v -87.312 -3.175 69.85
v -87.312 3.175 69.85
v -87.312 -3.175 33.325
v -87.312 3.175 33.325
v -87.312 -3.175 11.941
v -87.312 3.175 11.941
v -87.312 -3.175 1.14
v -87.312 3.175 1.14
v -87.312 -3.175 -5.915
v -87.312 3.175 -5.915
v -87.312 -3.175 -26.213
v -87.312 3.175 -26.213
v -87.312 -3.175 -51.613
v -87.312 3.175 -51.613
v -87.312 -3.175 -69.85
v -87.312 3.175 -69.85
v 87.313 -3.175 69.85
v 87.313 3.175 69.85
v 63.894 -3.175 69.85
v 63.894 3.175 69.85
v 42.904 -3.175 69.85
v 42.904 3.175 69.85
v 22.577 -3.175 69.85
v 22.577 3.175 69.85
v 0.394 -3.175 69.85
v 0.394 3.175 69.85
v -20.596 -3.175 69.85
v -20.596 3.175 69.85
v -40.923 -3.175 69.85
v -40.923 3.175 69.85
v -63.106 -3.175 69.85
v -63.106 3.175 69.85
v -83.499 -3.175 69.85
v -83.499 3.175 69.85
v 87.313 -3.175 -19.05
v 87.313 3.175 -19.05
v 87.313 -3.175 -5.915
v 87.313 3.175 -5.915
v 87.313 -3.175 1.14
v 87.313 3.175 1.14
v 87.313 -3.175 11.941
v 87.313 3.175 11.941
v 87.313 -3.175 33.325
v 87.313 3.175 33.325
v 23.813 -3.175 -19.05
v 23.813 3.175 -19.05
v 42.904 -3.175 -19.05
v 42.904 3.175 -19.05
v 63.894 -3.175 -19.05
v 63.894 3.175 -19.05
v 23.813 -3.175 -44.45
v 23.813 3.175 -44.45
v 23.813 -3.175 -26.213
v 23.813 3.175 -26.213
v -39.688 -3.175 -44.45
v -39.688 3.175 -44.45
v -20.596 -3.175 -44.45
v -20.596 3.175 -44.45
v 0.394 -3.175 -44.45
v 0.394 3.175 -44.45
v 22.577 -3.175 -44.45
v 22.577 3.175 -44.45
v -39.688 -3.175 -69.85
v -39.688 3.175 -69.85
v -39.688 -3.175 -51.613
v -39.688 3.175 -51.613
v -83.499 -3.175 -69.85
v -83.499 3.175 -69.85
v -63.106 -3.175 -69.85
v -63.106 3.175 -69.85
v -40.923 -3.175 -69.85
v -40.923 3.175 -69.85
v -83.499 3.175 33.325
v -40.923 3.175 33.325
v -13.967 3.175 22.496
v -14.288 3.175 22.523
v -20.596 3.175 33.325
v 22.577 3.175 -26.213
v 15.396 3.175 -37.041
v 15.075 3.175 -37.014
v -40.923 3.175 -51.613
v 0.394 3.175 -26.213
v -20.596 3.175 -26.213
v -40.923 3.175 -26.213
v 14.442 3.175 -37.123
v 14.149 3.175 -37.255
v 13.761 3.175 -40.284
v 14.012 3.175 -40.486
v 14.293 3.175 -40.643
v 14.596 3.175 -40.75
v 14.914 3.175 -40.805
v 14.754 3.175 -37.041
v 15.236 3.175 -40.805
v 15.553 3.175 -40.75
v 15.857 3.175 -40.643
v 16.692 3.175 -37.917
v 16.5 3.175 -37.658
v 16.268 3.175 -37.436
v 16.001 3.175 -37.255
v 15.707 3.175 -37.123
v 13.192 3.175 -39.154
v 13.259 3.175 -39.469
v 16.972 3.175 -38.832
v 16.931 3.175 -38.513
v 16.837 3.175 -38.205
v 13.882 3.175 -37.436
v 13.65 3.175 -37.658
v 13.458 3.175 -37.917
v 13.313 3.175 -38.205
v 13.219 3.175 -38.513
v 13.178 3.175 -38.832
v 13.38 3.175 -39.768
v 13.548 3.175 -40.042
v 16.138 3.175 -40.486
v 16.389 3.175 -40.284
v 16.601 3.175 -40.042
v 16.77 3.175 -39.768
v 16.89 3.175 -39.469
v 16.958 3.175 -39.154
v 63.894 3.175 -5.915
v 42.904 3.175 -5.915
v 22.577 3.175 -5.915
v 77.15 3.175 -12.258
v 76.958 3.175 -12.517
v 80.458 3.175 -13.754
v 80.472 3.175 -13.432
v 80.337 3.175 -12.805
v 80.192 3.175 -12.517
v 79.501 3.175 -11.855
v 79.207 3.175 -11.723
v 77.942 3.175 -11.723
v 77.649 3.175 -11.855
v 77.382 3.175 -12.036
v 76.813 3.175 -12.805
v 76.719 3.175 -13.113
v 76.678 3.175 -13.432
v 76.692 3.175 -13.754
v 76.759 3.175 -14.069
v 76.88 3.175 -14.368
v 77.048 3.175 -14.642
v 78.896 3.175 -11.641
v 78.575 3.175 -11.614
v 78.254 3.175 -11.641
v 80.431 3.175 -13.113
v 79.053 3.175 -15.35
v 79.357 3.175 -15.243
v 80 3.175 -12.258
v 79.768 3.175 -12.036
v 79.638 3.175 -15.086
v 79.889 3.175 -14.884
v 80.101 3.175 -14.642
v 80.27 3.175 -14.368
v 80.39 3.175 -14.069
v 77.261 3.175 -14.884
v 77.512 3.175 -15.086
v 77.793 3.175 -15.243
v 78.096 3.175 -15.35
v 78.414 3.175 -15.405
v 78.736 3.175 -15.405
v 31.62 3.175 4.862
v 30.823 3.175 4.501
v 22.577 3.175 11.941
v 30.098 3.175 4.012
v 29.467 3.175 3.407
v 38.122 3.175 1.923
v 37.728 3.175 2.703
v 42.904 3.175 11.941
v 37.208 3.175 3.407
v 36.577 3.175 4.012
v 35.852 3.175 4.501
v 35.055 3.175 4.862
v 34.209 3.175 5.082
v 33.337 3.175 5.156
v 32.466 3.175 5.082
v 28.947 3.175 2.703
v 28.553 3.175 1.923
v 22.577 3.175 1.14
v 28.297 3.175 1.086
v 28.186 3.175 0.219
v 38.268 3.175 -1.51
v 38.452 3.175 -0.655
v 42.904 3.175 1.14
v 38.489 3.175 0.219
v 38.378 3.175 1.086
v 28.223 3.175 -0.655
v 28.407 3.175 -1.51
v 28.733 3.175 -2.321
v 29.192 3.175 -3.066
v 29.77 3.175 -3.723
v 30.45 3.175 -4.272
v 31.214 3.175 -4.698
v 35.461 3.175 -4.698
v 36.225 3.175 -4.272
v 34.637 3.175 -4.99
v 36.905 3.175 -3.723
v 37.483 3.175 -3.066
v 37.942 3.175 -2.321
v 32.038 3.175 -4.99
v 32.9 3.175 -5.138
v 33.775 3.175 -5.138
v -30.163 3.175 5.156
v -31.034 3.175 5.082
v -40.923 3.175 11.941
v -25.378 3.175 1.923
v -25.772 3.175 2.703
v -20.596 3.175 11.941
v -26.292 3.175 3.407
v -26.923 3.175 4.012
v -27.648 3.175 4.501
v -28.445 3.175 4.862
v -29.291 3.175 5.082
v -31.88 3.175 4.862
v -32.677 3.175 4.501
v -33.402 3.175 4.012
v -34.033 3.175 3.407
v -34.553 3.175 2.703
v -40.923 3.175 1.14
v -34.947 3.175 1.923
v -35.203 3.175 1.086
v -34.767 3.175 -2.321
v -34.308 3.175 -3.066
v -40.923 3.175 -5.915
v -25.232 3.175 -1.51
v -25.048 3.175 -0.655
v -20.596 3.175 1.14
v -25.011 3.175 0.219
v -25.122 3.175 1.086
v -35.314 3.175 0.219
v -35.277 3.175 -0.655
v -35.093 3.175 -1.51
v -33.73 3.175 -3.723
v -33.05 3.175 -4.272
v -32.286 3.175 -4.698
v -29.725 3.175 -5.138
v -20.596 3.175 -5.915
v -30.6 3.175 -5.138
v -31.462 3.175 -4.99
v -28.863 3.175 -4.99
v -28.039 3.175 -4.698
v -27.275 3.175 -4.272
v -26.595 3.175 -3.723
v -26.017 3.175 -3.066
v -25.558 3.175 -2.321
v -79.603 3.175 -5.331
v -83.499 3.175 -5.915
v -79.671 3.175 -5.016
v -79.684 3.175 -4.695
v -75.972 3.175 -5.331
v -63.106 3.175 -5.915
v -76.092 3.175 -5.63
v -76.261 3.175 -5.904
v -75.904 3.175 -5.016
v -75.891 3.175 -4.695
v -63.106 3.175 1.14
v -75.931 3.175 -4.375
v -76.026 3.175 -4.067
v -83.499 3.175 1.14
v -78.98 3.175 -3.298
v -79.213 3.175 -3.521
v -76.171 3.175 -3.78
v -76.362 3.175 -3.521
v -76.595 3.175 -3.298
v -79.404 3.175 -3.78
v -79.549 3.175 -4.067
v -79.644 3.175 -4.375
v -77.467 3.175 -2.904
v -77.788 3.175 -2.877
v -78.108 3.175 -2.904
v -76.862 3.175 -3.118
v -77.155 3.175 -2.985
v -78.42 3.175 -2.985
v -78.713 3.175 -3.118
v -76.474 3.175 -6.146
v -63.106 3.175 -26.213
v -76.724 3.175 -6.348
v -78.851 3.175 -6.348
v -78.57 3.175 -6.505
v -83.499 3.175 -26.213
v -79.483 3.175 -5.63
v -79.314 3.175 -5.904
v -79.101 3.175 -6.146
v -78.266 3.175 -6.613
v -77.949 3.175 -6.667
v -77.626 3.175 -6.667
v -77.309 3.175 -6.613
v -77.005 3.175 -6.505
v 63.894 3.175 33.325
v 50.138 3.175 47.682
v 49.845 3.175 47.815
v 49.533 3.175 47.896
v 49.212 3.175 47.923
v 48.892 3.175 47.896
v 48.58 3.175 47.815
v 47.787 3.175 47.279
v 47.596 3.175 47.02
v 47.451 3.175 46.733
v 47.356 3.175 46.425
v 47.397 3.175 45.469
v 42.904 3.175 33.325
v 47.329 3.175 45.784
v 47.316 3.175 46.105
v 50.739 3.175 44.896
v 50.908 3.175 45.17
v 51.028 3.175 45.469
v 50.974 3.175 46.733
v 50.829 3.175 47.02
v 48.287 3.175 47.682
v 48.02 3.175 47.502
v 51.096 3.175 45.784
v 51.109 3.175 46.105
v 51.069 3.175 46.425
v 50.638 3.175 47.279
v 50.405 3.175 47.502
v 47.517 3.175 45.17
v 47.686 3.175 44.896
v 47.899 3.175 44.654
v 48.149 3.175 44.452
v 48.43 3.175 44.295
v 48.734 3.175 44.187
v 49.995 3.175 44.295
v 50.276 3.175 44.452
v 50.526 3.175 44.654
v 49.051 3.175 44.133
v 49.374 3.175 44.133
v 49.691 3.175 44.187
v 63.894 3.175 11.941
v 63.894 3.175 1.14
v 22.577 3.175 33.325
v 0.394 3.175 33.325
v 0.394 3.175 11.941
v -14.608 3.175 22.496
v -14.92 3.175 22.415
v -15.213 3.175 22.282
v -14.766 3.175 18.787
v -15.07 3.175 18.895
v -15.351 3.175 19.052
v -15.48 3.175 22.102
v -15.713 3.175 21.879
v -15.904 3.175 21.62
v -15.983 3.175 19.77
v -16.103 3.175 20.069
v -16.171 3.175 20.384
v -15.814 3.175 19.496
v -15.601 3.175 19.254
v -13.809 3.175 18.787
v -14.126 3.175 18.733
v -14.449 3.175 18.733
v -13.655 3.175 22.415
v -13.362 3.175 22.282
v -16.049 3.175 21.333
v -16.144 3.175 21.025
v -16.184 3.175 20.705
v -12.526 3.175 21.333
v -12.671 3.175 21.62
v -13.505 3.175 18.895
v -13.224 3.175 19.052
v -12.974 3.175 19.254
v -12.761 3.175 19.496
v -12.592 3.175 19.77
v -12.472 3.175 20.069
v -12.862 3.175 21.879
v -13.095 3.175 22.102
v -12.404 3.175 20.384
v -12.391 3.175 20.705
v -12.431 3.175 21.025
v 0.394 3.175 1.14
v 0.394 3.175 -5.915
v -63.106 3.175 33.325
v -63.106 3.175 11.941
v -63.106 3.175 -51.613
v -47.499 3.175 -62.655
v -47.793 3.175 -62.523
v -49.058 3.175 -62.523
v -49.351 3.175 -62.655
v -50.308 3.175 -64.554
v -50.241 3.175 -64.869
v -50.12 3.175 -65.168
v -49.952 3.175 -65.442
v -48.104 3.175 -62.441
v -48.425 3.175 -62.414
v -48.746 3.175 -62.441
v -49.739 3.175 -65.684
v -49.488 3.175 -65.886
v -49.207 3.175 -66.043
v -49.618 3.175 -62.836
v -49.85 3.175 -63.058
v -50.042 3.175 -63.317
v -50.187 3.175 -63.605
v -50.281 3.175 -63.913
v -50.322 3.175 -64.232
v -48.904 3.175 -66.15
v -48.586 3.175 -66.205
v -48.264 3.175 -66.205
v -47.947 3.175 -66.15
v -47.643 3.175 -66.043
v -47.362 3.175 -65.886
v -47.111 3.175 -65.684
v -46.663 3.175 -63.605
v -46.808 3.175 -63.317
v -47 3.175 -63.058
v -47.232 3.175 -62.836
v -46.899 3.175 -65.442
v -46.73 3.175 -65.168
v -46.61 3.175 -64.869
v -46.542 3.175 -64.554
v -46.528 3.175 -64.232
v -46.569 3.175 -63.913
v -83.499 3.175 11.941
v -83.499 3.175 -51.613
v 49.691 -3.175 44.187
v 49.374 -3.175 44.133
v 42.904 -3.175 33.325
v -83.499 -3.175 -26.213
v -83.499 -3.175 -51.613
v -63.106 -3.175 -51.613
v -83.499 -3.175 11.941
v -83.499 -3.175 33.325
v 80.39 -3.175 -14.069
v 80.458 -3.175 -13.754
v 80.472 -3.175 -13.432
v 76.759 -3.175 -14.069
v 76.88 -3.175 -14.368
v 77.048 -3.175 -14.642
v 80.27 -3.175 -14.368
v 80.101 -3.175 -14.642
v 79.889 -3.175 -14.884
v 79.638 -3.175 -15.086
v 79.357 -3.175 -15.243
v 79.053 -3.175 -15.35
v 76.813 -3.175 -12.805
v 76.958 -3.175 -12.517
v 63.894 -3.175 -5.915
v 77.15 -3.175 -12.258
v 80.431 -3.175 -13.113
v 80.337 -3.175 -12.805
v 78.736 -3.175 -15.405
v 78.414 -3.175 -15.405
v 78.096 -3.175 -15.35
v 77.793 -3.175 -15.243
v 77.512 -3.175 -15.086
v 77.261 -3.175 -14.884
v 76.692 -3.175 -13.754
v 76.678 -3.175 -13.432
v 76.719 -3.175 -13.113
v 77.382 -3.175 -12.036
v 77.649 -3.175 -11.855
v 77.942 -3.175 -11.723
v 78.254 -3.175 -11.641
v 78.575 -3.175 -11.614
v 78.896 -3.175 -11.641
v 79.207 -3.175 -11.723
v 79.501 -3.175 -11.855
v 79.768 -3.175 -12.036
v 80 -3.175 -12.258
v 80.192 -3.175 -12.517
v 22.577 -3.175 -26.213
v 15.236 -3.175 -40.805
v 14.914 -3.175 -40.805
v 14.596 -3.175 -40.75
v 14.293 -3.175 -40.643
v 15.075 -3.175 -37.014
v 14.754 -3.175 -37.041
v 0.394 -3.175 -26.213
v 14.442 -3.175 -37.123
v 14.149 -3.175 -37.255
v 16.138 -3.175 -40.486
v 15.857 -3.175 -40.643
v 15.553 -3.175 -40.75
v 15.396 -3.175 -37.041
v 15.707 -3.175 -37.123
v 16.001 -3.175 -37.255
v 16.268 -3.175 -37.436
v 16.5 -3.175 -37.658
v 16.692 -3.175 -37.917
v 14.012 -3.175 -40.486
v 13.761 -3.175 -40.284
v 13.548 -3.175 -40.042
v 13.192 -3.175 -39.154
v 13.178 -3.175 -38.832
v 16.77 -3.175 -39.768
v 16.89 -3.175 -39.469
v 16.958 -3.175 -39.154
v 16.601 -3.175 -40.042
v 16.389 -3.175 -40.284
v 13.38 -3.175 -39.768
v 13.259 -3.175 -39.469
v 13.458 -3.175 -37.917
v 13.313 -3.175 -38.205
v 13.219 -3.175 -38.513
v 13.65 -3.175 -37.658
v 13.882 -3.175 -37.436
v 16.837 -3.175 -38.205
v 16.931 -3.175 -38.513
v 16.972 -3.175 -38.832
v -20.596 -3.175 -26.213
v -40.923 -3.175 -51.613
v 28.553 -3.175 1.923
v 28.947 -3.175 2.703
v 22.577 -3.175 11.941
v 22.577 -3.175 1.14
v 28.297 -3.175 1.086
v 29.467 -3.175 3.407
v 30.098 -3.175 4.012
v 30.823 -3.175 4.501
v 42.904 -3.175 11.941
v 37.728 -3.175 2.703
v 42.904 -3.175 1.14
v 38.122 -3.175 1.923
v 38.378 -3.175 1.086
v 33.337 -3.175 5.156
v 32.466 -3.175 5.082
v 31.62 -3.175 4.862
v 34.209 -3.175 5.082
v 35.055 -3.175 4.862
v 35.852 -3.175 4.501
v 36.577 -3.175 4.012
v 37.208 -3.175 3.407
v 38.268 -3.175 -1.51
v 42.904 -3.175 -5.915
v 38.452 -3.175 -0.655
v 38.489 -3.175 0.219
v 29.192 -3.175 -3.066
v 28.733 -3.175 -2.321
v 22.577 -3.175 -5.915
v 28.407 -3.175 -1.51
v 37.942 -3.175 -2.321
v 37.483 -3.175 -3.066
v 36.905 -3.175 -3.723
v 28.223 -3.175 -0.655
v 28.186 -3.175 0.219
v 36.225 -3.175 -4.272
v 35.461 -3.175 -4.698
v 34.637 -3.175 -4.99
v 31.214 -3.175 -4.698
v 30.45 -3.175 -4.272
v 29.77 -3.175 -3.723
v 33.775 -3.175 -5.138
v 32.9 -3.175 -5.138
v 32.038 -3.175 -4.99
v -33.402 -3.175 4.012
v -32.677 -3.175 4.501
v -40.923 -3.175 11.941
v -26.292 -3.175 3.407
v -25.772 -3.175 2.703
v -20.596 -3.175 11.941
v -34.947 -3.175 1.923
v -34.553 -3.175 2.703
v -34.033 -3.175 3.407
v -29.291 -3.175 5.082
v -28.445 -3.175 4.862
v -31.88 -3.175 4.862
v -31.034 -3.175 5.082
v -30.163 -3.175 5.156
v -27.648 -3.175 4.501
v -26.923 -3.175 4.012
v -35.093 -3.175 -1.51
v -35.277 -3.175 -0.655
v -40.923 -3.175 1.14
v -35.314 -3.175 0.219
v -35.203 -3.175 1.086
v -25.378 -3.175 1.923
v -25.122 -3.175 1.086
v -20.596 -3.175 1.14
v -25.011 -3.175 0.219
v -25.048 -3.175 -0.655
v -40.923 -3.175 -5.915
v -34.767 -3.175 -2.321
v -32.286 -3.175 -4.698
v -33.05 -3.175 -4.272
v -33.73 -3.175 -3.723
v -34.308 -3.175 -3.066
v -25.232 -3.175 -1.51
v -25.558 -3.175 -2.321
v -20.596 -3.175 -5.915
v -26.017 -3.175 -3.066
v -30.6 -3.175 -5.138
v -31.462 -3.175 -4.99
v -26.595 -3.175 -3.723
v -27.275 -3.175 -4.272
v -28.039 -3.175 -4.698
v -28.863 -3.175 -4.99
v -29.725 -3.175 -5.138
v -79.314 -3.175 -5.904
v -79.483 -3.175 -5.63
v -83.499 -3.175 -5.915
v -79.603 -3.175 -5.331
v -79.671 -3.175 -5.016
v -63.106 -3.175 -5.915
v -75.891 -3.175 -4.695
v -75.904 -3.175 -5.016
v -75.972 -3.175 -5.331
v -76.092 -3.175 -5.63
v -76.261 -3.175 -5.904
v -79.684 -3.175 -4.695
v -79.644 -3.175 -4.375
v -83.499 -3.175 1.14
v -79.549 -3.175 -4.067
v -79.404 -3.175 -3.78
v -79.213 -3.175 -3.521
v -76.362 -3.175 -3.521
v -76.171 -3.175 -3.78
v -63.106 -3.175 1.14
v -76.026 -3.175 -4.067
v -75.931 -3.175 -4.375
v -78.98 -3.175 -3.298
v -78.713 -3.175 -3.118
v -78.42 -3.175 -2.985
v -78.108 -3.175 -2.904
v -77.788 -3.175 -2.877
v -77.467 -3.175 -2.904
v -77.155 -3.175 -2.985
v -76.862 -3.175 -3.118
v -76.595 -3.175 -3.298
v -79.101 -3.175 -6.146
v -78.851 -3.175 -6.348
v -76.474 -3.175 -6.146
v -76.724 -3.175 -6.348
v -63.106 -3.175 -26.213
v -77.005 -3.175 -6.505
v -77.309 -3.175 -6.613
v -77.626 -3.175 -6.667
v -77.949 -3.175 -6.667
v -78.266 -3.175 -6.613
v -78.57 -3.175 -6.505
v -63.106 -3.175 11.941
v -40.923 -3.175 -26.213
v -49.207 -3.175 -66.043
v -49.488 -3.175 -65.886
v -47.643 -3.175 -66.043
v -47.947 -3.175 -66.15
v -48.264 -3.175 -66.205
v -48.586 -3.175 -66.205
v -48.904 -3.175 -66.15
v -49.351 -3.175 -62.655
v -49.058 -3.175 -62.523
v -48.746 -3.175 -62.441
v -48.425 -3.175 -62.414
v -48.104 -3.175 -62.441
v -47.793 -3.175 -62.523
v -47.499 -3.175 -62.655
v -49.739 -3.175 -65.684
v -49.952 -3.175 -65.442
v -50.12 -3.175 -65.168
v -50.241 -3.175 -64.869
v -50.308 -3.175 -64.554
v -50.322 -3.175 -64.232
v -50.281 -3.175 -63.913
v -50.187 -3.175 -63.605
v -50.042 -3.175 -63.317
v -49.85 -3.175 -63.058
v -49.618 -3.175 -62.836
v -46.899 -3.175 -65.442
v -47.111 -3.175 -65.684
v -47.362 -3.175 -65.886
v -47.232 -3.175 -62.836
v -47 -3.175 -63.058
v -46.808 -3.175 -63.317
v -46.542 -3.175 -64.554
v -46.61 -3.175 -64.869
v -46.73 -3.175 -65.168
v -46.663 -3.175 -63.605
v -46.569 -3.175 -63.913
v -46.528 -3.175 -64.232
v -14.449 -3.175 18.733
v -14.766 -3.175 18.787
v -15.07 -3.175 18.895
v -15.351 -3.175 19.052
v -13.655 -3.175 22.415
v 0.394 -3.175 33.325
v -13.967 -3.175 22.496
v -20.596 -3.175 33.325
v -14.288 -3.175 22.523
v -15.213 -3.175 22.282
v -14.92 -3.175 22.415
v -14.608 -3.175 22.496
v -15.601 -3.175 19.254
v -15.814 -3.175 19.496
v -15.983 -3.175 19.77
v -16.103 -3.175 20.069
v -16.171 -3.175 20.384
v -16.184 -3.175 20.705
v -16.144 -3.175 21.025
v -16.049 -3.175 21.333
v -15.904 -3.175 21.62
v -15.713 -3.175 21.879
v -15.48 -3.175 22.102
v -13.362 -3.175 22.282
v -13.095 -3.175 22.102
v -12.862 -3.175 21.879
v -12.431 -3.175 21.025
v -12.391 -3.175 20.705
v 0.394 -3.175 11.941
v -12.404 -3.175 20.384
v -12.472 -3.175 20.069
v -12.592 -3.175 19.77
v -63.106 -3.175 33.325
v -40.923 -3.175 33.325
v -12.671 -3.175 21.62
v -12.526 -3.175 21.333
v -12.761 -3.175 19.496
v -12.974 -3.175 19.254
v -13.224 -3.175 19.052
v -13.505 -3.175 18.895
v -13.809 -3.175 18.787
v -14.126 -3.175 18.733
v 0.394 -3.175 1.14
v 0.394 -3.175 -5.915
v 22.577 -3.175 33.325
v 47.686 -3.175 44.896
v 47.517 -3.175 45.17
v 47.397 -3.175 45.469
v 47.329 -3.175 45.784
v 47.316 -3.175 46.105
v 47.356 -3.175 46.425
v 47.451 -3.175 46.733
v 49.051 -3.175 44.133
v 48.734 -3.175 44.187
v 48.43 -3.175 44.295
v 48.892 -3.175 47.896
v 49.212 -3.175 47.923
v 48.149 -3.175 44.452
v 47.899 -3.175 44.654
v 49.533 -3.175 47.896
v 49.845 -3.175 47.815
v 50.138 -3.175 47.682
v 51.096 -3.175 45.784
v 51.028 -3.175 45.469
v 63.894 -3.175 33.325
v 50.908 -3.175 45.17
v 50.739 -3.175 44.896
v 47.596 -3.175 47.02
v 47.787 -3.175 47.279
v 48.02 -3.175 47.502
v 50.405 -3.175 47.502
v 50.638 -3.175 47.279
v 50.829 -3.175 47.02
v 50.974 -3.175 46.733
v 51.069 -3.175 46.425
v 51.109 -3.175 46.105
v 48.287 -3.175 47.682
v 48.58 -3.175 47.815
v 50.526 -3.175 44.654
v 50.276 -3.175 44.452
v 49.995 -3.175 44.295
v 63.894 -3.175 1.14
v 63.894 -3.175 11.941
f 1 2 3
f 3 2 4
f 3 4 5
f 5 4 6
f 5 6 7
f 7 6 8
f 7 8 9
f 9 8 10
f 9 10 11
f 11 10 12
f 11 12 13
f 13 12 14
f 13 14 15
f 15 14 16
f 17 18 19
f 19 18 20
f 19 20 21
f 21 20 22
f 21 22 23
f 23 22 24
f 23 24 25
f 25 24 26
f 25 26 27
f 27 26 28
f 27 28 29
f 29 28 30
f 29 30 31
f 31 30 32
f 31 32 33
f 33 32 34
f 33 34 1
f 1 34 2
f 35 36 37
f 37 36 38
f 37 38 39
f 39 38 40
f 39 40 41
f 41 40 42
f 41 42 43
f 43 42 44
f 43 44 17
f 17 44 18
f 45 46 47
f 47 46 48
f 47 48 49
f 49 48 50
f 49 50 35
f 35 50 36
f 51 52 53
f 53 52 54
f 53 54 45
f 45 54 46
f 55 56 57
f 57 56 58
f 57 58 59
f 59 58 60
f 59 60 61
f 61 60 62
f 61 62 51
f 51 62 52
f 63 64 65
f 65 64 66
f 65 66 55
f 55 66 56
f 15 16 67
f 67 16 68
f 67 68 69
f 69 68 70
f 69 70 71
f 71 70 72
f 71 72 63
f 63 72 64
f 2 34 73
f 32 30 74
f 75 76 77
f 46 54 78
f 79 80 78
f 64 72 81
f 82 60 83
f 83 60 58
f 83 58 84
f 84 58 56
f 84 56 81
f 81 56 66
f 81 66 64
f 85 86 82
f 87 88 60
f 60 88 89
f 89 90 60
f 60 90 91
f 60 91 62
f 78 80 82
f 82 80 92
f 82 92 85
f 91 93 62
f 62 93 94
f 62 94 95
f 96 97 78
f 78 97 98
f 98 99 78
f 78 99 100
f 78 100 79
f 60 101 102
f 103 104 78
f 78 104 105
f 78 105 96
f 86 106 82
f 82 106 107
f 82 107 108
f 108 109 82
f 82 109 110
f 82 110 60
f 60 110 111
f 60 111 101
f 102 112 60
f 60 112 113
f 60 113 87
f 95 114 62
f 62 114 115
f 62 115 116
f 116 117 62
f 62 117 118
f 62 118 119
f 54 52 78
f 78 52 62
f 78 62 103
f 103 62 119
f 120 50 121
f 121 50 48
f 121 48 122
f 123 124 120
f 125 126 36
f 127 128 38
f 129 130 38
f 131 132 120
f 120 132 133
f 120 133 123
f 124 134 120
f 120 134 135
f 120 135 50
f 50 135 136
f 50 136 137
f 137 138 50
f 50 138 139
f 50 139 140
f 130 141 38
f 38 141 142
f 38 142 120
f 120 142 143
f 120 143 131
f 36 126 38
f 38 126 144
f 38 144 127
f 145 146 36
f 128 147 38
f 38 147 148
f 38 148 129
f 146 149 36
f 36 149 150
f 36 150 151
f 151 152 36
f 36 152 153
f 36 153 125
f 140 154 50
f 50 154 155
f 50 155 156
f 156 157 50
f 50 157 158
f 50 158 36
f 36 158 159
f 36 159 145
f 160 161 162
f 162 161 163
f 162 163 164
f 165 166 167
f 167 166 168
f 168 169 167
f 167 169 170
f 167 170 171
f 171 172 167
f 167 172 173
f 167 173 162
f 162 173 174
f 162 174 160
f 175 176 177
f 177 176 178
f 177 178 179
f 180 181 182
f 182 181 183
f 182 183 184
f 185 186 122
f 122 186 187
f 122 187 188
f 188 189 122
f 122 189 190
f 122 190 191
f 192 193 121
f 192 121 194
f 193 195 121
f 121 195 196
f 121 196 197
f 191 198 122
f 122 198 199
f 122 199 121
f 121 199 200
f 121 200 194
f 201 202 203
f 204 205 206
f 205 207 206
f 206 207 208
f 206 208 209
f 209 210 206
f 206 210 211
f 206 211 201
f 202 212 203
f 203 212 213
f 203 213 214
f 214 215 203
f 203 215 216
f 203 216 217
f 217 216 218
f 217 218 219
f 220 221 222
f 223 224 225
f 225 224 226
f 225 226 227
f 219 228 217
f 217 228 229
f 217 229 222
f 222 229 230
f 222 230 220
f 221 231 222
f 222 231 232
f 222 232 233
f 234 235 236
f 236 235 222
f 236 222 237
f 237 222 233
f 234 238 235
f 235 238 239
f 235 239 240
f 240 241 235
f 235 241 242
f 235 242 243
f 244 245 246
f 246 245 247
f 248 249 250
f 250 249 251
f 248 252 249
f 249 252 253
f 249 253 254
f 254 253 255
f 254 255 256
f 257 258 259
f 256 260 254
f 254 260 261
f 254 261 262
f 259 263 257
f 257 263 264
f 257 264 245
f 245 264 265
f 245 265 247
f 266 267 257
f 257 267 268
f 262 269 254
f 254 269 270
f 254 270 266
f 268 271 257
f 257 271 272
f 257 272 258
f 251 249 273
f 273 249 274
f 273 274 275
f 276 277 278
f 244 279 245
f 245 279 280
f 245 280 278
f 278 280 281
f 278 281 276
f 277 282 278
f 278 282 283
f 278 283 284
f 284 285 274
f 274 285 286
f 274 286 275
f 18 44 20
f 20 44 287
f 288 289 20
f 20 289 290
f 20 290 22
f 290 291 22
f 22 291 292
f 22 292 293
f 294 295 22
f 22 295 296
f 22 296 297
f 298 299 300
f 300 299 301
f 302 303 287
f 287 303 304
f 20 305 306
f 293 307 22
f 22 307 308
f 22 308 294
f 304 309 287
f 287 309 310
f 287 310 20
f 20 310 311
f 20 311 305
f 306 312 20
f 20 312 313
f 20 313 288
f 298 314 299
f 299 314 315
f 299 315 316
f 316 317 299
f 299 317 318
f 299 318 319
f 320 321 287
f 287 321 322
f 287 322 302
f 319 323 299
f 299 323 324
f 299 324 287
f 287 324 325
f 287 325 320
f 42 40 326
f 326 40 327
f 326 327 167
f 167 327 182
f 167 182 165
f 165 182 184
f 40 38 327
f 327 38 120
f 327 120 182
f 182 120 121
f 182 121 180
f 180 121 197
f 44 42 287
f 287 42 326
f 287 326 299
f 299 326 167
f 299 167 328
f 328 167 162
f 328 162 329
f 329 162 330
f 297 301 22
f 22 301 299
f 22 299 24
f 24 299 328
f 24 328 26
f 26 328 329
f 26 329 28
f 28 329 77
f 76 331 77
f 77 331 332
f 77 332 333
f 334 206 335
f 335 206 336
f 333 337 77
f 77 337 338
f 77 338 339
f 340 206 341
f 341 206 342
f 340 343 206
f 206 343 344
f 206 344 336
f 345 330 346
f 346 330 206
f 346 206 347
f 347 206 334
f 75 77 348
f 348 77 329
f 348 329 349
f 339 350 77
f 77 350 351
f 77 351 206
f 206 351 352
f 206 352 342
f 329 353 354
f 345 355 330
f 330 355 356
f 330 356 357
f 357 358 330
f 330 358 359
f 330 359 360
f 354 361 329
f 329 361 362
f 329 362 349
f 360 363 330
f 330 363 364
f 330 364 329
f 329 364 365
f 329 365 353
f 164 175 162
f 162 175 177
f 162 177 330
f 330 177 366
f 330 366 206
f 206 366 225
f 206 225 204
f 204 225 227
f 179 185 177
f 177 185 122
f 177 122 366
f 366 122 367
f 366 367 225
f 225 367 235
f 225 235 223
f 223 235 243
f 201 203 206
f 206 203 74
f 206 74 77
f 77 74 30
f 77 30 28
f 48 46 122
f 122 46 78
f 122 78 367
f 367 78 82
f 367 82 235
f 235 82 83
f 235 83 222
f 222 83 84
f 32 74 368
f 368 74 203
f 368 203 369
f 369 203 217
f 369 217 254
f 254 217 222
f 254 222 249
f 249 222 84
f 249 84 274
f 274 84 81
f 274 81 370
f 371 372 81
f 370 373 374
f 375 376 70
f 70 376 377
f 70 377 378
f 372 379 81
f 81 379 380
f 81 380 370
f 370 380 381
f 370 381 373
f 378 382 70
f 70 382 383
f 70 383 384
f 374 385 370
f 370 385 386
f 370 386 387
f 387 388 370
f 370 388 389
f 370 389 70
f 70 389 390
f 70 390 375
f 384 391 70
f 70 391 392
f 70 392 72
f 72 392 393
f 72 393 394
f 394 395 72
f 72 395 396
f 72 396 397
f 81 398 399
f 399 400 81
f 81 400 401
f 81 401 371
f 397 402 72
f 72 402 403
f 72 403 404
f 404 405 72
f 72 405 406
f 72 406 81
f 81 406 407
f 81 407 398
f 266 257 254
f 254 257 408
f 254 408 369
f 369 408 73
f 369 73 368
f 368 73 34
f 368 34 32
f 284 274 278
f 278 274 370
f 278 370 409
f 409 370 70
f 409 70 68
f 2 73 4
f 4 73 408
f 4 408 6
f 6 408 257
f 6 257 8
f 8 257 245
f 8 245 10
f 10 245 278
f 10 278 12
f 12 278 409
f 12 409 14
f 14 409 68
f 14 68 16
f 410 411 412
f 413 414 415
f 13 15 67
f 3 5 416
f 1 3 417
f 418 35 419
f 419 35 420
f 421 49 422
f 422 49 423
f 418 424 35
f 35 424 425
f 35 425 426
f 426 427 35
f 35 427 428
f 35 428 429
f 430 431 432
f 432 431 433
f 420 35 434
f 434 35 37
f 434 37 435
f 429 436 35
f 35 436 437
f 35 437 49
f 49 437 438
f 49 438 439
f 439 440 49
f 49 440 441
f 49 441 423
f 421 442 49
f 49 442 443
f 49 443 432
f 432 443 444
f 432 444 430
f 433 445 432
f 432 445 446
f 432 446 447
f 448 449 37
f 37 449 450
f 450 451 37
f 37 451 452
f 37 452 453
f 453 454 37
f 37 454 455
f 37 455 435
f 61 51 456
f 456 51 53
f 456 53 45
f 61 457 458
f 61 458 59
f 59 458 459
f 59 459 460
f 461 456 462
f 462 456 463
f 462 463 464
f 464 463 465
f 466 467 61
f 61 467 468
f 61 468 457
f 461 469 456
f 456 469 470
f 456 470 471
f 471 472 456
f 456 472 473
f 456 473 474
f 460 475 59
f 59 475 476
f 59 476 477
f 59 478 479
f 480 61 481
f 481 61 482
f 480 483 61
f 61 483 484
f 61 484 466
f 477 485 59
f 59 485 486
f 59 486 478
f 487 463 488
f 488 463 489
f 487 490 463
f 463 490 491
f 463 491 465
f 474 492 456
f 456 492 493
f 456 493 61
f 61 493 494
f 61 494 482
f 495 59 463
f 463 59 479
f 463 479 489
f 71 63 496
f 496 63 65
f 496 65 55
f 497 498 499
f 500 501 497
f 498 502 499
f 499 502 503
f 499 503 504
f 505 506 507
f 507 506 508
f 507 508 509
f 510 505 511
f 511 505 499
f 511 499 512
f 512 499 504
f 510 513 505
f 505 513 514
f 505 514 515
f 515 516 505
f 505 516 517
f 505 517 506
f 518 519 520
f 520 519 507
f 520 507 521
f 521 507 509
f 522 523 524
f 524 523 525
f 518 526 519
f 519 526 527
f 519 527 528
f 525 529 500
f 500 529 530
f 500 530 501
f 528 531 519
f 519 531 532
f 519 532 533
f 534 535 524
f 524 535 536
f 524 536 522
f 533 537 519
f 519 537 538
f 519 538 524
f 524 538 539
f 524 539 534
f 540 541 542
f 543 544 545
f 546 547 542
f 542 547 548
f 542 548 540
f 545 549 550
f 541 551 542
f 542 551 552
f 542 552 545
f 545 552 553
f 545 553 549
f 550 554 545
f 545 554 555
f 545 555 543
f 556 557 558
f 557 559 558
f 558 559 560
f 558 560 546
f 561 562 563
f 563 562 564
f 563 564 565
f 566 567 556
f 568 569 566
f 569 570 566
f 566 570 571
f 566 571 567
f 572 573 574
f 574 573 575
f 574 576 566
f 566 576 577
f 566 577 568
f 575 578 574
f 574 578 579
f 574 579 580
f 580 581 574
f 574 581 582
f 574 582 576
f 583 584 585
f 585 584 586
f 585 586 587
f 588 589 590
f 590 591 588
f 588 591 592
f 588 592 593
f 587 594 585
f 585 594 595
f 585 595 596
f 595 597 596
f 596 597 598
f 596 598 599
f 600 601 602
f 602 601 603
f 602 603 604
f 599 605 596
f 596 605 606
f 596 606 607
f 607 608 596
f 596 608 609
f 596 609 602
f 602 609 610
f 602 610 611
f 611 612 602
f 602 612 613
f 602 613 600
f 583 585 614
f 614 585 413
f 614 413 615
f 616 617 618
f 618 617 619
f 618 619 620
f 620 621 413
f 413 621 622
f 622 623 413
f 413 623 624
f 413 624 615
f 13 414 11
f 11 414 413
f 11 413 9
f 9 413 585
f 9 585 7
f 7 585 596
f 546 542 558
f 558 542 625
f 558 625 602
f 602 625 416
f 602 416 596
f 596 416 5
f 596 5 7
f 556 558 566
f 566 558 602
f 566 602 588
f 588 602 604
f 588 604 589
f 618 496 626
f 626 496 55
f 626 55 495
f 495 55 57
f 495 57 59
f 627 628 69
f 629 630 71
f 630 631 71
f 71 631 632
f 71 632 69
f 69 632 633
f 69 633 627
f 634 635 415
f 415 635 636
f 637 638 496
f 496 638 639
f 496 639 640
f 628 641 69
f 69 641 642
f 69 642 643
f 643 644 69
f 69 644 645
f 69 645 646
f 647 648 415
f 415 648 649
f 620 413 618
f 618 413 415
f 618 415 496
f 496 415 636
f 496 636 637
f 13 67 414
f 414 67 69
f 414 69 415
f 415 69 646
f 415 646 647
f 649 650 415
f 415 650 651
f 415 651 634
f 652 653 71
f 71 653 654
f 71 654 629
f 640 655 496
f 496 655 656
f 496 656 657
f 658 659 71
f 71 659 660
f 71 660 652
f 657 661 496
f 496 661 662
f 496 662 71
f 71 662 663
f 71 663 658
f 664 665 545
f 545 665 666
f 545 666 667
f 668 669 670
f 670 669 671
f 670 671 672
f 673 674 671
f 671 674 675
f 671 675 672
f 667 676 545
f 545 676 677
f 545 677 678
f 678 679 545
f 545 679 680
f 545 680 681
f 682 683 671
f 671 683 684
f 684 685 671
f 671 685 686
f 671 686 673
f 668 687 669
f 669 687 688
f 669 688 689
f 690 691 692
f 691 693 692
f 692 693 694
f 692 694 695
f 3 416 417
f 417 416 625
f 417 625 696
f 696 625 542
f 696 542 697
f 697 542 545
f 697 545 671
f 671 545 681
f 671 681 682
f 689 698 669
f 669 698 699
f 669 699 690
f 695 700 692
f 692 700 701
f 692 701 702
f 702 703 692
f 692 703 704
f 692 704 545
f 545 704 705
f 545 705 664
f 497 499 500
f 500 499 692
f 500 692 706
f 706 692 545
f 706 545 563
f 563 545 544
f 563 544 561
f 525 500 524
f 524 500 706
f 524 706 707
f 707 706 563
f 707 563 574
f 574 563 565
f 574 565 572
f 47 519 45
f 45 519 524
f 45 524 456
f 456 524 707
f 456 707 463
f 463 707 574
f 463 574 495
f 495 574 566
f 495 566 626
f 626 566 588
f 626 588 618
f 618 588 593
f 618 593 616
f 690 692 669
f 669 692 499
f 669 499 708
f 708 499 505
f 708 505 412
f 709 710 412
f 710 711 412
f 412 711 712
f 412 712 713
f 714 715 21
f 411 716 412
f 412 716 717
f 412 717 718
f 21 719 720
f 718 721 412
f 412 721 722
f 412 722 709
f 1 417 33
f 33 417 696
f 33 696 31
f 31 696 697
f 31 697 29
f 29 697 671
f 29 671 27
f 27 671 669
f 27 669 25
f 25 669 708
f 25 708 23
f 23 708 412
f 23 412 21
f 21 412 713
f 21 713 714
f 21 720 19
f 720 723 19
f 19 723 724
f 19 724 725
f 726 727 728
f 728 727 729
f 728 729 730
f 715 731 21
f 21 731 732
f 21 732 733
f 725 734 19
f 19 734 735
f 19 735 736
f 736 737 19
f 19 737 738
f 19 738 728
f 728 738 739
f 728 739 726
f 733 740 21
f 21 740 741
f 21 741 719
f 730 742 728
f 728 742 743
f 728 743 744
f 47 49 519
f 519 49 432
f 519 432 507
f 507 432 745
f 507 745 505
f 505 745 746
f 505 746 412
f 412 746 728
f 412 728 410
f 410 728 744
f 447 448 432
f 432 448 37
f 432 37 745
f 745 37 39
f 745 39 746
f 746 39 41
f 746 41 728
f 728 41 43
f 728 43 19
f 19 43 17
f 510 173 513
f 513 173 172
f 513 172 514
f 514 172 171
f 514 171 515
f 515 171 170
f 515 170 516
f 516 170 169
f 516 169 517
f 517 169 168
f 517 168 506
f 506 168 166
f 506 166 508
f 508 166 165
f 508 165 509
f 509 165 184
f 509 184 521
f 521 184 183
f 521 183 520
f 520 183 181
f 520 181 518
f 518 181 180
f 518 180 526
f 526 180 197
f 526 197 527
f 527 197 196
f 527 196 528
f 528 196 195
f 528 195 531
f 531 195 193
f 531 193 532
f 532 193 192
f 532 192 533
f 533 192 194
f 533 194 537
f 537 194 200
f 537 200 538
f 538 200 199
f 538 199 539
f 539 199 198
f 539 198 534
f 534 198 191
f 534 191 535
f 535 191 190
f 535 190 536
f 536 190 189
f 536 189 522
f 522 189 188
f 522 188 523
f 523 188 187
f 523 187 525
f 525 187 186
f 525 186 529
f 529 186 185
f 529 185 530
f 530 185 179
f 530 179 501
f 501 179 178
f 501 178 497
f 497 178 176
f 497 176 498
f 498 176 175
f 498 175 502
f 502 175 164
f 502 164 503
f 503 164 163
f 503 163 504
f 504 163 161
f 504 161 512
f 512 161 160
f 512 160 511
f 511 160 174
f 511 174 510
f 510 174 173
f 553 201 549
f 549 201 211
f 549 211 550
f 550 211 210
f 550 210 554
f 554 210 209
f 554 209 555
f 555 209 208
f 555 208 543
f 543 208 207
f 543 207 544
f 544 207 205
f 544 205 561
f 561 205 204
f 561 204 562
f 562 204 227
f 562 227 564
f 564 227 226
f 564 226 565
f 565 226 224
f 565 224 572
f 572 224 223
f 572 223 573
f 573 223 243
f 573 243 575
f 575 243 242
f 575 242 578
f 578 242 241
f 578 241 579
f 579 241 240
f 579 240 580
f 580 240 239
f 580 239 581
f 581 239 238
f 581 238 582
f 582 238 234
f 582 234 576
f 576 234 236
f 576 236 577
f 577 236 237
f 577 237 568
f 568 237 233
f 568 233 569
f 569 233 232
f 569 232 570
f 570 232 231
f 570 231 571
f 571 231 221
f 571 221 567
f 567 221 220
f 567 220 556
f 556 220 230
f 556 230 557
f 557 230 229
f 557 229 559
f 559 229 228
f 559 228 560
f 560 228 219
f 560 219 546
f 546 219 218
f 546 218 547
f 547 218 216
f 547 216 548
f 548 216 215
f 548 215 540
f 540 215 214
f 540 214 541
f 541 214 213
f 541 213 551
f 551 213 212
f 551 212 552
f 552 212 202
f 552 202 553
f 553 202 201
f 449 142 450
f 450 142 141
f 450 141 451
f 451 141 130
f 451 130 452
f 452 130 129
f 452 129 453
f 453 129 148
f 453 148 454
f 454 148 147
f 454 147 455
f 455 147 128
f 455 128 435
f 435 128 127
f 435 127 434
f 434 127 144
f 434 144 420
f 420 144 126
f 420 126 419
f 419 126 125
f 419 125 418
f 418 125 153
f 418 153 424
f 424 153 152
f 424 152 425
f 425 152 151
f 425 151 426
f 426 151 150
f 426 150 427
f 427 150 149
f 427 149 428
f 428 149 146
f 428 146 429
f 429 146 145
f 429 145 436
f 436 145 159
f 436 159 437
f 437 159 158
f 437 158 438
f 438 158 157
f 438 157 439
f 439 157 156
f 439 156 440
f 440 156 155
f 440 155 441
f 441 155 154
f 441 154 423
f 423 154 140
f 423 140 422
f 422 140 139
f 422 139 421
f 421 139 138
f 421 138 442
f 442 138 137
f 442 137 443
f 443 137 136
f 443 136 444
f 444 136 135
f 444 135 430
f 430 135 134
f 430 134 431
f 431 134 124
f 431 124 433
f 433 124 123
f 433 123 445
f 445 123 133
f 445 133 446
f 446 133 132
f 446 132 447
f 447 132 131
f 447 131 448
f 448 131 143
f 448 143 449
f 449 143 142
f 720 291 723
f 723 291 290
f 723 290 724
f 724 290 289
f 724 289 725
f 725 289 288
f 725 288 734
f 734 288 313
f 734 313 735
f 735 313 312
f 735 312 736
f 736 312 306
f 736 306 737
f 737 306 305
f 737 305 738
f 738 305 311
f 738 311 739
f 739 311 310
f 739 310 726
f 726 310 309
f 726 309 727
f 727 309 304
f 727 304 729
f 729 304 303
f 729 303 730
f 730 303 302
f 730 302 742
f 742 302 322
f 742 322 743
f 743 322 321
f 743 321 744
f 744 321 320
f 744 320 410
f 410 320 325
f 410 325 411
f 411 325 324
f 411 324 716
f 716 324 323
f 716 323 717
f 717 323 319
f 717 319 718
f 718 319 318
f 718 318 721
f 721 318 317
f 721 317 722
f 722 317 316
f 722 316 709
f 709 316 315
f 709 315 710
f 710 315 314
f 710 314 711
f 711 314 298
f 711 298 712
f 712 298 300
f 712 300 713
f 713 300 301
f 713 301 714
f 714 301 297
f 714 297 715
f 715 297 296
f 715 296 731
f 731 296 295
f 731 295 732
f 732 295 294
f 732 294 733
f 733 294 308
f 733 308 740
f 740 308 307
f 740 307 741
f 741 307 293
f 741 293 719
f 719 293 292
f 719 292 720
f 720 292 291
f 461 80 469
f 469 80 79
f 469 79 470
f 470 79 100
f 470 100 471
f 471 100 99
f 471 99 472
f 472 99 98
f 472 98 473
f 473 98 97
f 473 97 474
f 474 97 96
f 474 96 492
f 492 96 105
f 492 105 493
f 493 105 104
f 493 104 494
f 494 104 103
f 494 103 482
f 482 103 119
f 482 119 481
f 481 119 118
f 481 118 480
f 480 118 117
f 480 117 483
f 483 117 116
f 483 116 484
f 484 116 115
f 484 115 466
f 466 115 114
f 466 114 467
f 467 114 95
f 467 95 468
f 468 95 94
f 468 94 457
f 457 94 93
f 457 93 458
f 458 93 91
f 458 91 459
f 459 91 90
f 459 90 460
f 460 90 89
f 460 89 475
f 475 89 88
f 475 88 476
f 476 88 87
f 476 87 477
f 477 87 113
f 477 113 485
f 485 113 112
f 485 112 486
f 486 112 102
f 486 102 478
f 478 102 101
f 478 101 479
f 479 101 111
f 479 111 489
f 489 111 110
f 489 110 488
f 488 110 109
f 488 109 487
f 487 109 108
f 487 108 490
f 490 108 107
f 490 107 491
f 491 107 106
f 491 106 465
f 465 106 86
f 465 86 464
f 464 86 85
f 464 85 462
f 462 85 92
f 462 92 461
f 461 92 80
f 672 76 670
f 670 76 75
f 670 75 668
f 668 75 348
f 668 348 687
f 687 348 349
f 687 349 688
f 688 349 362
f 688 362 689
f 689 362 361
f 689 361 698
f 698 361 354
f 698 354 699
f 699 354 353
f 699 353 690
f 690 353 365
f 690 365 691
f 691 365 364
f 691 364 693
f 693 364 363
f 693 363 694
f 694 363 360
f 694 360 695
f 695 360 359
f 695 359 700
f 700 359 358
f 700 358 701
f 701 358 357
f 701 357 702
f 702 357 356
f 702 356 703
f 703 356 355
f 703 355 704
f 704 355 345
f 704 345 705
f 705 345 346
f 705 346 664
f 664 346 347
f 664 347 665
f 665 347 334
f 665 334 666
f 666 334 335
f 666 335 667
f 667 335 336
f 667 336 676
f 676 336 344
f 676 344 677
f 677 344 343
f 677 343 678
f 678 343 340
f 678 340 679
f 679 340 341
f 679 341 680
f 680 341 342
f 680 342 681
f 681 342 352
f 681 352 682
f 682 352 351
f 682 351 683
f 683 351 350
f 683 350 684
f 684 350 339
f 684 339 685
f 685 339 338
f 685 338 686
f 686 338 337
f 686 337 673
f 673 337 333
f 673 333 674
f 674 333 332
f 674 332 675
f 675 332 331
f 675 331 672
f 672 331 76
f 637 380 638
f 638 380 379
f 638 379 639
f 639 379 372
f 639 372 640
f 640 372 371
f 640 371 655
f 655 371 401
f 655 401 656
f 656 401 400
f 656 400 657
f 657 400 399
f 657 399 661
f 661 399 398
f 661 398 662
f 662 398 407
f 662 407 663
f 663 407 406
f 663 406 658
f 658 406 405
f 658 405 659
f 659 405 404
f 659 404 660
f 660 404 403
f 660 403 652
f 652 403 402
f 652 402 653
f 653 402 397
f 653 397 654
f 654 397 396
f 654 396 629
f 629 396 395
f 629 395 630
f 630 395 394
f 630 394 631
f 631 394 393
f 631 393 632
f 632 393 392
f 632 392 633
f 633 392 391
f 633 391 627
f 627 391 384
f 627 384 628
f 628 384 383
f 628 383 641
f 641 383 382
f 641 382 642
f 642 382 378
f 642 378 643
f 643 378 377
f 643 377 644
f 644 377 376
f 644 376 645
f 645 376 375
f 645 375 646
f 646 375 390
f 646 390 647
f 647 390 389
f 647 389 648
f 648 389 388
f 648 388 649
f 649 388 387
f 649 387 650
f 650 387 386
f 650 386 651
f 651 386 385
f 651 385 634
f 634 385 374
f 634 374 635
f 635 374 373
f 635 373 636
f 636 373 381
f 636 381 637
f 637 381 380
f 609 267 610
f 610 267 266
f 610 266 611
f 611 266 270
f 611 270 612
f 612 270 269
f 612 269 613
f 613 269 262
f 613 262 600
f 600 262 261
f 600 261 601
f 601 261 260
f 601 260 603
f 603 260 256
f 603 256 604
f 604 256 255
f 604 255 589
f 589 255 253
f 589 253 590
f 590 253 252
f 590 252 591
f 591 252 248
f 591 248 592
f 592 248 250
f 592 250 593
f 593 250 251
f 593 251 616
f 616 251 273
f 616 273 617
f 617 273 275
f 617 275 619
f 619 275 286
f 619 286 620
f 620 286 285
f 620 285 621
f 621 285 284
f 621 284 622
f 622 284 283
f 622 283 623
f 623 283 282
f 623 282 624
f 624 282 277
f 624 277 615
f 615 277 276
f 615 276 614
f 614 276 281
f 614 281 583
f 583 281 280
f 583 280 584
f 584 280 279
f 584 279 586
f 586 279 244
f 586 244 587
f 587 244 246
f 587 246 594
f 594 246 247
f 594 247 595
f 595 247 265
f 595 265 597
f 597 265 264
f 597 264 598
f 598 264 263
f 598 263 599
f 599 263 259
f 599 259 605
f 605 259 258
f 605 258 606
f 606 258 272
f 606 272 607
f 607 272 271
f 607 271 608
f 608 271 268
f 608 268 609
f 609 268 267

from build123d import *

# Parameters (mm, degrees)
BOSS_EXTRUDE1_DEPTH = 3.175
CUT_EXTRUDE2_START  = 3.175
SKETCH2_R           = 5.1562
CUT_EXTRUDE2_DEPTH  = 116.03462534
CUT_EXTRUDE4_START  = 3.175
SKETCH3_R           = 1.89865
CUT_EXTRUDE4_DEPTH  = 12.7


with BuildPart() as part:
    # Sketch1 → Boss-Extrude1 (new, symmetric)
    with BuildSketch(Plane(origin=(0, 0, 0), x_dir=(1, 0, 0), z_dir=(0, 1, 0))):
        Polygon((-87.3125, -69.85), (87.3125, -69.85), (87.3125, 19.05), (23.8125, 19.05), (23.8125, 44.45), (-39.6875, 44.45), (-39.6875, 69.85), (-87.3125, 69.85), align=None)
    extrude(amount=BOSS_EXTRUDE1_DEPTH, both=True)

    # Sketch2 → Cut-Extrude2 (cut, through all)
    with BuildSketch(Plane(origin=(0, 0, 0), x_dir=(1, 0, 0), z_dir=(0, 1, 0)).offset(CUT_EXTRUDE2_START)):
        with Locations(Location((-30.1625, 0, 0), (0, 0, 270))):
            Circle(SKETCH2_R)
        with Locations(Location((33.3375, 0, 0), (0, 0, 270))):
            Circle(SKETCH2_R)
    extrude(amount=-CUT_EXTRUDE2_DEPTH, mode=Mode.SUBTRACT)

    # Sketch3 → Cut-Extrude4 (cut)
    with BuildSketch(Plane(origin=(0, 0, 0), x_dir=(1, 0, 0), z_dir=(0, 1, 0)).offset(CUT_EXTRUDE4_START)):
        with Locations(Location((-77.7875, 4.7752, 0), (0, 0, 270))):
            Circle(SKETCH3_R)
        with Locations(Location((-48.4251, 64.3128, 0), (0, 0, 270))):
            Circle(SKETCH3_R)
        with Locations(Location((-14.2875, -20.6248, 0), (0, 0, 270))):
            Circle(SKETCH3_R)
        with Locations(Location((15.0749, 38.9128, 0), (0, 0, 270))):
            Circle(SKETCH3_R)
        with Locations(Location((49.2125, -46.0248, 0), (0, 0, 270))):
            Circle(SKETCH3_R)
        with Locations(Location((78.5749, 13.5128, 0), (0, 0, 270))):
            Circle(SKETCH3_R)
    extrude(amount=-CUT_EXTRUDE4_DEPTH, mode=Mode.SUBTRACT)


solid = part.part
